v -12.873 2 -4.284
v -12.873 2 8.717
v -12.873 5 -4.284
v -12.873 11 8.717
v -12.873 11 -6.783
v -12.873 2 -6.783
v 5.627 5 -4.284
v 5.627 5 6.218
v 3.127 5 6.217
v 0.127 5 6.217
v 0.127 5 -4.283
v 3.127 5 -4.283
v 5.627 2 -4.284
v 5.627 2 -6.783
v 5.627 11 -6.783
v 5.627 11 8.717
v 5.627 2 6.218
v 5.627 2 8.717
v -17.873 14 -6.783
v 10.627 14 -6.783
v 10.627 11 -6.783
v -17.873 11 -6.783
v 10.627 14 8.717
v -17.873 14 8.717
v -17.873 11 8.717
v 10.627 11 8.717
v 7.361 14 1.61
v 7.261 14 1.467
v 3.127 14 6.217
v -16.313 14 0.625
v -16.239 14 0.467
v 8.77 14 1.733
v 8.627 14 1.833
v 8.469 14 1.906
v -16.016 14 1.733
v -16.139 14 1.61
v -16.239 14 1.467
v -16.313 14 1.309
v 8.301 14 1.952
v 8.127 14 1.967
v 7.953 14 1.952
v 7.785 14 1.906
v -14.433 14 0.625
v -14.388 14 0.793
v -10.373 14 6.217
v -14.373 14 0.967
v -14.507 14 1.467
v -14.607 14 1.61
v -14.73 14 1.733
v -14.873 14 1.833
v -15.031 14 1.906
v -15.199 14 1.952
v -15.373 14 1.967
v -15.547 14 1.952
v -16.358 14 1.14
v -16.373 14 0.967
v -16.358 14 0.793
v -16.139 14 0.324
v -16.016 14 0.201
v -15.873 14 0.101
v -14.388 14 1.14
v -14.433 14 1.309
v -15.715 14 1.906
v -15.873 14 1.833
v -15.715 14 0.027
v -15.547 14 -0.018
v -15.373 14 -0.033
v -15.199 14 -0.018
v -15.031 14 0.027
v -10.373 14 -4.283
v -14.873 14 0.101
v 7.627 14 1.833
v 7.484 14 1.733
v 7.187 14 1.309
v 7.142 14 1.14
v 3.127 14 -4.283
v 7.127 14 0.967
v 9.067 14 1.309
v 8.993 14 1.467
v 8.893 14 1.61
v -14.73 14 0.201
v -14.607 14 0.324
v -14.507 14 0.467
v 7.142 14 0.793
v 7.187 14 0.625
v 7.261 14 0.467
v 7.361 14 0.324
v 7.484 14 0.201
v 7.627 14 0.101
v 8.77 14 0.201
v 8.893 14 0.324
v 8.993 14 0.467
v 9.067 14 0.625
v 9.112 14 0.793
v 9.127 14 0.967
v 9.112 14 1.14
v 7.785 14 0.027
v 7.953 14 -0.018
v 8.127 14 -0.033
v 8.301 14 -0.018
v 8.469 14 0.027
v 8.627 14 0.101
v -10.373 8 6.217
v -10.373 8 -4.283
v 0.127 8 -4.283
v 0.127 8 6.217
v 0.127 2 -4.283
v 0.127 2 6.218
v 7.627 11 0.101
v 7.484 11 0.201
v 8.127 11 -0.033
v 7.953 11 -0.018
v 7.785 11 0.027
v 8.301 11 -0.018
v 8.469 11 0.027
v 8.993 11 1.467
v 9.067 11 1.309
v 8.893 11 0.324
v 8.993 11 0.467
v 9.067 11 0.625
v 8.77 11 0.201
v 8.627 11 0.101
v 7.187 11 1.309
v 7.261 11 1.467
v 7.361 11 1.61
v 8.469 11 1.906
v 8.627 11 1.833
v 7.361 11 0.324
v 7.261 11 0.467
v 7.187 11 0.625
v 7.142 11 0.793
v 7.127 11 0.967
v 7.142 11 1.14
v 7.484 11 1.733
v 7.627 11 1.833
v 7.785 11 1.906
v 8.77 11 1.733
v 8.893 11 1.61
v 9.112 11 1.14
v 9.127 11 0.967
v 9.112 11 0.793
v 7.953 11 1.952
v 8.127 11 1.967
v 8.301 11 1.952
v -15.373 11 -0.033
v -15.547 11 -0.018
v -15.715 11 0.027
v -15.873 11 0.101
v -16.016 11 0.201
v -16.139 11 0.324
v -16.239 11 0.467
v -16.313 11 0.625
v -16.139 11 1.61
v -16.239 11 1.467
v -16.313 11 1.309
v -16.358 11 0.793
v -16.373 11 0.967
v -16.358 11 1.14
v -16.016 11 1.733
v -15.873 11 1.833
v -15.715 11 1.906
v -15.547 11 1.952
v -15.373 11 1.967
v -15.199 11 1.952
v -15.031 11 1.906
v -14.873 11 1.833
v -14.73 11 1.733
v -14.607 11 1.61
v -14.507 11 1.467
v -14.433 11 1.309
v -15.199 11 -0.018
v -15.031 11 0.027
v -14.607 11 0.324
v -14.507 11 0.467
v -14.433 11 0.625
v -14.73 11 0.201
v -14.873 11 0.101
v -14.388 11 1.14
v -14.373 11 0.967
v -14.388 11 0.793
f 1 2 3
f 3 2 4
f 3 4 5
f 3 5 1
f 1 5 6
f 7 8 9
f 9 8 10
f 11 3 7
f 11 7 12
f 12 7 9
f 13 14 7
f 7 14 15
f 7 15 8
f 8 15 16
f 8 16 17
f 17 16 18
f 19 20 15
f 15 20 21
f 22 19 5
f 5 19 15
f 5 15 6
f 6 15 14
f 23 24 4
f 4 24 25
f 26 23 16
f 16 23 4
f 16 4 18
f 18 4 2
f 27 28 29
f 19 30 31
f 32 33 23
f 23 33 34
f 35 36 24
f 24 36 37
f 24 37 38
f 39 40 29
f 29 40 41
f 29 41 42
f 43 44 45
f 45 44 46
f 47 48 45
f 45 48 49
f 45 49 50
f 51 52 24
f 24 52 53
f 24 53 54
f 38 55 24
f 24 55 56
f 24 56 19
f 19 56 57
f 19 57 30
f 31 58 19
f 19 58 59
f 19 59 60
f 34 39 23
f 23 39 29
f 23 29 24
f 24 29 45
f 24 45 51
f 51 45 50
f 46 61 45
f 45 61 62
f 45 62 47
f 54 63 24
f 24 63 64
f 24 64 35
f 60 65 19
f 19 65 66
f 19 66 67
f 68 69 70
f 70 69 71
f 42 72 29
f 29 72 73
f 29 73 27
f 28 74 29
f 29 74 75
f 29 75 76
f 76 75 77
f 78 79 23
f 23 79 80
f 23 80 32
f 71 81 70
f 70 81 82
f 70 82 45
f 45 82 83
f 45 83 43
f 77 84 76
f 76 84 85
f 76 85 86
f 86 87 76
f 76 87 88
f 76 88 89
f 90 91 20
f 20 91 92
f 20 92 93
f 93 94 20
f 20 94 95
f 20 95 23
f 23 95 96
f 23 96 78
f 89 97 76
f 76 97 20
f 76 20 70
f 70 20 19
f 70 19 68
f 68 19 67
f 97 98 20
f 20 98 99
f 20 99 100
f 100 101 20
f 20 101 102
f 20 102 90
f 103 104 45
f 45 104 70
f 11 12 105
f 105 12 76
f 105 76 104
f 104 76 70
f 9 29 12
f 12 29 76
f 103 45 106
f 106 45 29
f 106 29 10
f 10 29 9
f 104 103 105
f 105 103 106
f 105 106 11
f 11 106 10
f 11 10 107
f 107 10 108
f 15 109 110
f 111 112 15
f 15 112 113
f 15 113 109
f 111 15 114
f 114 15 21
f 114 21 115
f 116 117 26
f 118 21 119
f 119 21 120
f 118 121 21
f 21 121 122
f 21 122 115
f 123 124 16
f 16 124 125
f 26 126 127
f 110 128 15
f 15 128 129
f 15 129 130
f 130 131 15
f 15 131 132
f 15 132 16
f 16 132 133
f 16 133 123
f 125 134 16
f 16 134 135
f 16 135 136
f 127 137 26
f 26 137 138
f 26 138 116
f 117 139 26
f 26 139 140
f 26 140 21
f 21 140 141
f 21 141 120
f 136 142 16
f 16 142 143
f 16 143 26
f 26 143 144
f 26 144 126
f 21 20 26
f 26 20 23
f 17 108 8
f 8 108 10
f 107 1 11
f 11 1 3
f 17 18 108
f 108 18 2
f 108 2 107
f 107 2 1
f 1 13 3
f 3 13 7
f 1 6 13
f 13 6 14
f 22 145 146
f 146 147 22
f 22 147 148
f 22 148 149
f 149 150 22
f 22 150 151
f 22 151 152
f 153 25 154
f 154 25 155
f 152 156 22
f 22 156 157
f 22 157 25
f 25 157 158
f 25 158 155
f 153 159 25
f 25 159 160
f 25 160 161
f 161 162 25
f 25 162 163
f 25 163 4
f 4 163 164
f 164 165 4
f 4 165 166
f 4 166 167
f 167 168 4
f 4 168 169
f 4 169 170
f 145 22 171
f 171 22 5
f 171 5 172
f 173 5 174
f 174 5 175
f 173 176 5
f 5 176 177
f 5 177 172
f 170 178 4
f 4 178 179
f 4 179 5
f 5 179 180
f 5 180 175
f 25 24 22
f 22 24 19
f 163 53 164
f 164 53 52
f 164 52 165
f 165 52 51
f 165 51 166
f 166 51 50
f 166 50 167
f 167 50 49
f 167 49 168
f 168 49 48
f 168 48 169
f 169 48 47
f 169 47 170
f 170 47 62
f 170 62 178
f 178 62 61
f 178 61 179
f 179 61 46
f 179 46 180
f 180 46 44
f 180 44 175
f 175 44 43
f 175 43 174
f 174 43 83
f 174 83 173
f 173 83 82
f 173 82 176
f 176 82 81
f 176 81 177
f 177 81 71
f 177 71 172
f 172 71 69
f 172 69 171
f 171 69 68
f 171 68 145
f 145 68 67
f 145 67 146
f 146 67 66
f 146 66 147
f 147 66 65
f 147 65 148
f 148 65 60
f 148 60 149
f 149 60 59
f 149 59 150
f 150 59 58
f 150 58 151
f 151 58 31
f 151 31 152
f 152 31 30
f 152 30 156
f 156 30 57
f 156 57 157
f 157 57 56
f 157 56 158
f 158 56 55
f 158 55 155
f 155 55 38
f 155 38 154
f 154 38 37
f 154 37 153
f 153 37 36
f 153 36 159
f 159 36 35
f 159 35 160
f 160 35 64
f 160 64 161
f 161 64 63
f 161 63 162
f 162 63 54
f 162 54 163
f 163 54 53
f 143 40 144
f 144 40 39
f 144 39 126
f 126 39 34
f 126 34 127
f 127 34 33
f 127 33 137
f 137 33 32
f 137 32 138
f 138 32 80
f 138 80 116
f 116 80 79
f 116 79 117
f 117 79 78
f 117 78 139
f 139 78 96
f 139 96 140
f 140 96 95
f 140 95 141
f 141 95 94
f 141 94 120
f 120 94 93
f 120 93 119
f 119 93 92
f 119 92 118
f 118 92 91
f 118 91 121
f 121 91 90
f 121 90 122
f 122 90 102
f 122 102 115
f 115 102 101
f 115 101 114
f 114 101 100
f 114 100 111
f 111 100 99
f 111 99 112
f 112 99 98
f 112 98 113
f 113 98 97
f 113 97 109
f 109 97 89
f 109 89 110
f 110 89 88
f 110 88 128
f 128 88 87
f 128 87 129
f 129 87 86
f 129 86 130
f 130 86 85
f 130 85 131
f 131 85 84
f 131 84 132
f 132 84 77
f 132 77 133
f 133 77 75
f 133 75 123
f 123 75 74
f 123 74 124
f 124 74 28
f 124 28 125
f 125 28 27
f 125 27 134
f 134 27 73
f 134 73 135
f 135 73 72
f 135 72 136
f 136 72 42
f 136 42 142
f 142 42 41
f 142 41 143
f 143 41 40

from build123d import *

# Parameters (mm, degrees)
SKETCH2_W           = 18.5
SKETCH2_H           = 15.5
BOSS_EXTRUDE1_DEPTH = 11
SKETCH3_W           = 18.5
SKETCH3_H           = 15.5
BOSS_EXTRUDE2_DEPTH = 3
SKETCH4_W           = 13.5
SKETCH4_H           = 10.5
CUT_EXTRUDE1_DEPTH  = 6
SKETCH5_W           = 3
SKETCH5_H           = 10.5
CUT_EXTRUDE2_DEPTH  = 26
SKETCH10_W          = 18.5
SKETCH10_H          = 5
CUT_EXTRUDE3_DEPTH  = 26
SKETCH11_W          = 15.5
SKETCH11_H          = 3
BOSS_EXTRUDE3_DEPTH = 5
SKETCH13_W          = 18.5
SKETCH13_H          = 2.498768597
BOSS_EXTRUDE4_DEPTH = 3
SKETCH14_W          = 15.5
SKETCH14_H          = 3
BOSS_EXTRUDE6_DEPTH = 5
SKETCH16_R          = 1
CUT_EXTRUDE5_DEPTH  = 5


with BuildPart() as part:
    # Sketch2 → Boss-Extrude1 (new body)
    with BuildSketch(Plane(origin=(0, 0, 0), x_dir=(1, 0, 0), z_dir=(0, 1, 0))):
        with Locations((-3.622916667, -0.966666667)):
            Rectangle(SKETCH2_W, SKETCH2_H)
    extrude(amount=BOSS_EXTRUDE1_DEPTH)

    # Sketch3 → Boss-Extrude2 (add)
    with BuildSketch(Plane(origin=(0, 11, 0), x_dir=(1, 0, 0), z_dir=(0, 1, 0))):
        with Locations((-3.622916667, -0.966666667)):
            Rectangle(SKETCH3_W, SKETCH3_H)
    extrude(amount=BOSS_EXTRUDE2_DEPTH)

    # Sketch4 → Cut-Extrude1 (cut)
    with BuildSketch(Plane(origin=(0, 14, 0), x_dir=(1, 0, 0), z_dir=(0, 1, 0))):
        with Locations((-3.622916667, -0.966666667)):
            Rectangle(SKETCH4_W, SKETCH4_H)
    extrude(amount=-CUT_EXTRUDE1_DEPTH, mode=Mode.SUBTRACT)

    # Sketch5 → Cut-Extrude2 (cut)
    with BuildSketch(Plane(origin=(0, 8, 0), x_dir=(1, 0, 0), z_dir=(0, 1, 0))):
        with Locations((1.627083333, -0.966666667)):
            Rectangle(SKETCH5_W, SKETCH5_H)
    extrude(amount=-CUT_EXTRUDE2_DEPTH, mode=Mode.SUBTRACT)

    # Sketch10 → Cut-Extrude3 (cut)
    with BuildSketch(Plane.XY.offset(8.716666667)):
        with Locations((-3.622916667, 2.5)):
            Rectangle(SKETCH10_W, SKETCH10_H)
    extrude(amount=-CUT_EXTRUDE3_DEPTH, mode=Mode.SUBTRACT)

    # Sketch11 → Boss-Extrude3 (add)
    with BuildSketch(Plane(origin=(5.627083333, 0, 0), x_dir=(0, 0, -1), z_dir=(1, 0, 0))):
        with Locations((-0.966666667, 12.5)):
            Rectangle(SKETCH11_W, SKETCH11_H)
    extrude(amount=BOSS_EXTRUDE3_DEPTH)

    # Sketch13 → Boss-Extrude4 (add)
    with BuildSketch(Plane.XZ.offset(-5)):
        Polygon((5.627083333, 6.217898069), (5.627083333, 8.716666667), (-12.872916667, 8.716666667), (-12.872916667, 6.217898069), (0.127083333, 6.217898069), align=None)
        Polygon((0.127083333, 6.217898069), (-12.872916667, 6.217898069), (-12.872916667, -4.283333333), (0.127083333, -4.283333333), (0.127083333, 6.216666667), align=None)
        with Locations((-3.622916667, -5.533949035)):
            Rectangle(SKETCH13_W, SKETCH13_H)
    extrude(amount=BOSS_EXTRUDE4_DEPTH)

    # Sketch14 → Boss-Extrude6 (add)
    with BuildSketch(Plane.ZY.offset(12.872916667)):
        with Locations((0.966666667, 12.5)):
            Rectangle(SKETCH14_W, SKETCH14_H)
    extrude(amount=BOSS_EXTRUDE6_DEPTH)

    # Sketch16 → Cut-Extrude5 (cut)
    with BuildSketch(Plane(origin=(0, 14, 0), x_dir=(1, 0, 0), z_dir=(0, 1, 0))):
        with Locations(Location((-15.372916667, -0.966666667, 0), (0, 0, 270))):
            Circle(SKETCH16_R)
        with Locations(Location((8.127083333, -0.966666667, 0), (0, 0, 270))):
            Circle(SKETCH16_R)
    extrude(amount=-CUT_EXTRUDE5_DEPTH, mode=Mode.SUBTRACT)


solid = part.part
